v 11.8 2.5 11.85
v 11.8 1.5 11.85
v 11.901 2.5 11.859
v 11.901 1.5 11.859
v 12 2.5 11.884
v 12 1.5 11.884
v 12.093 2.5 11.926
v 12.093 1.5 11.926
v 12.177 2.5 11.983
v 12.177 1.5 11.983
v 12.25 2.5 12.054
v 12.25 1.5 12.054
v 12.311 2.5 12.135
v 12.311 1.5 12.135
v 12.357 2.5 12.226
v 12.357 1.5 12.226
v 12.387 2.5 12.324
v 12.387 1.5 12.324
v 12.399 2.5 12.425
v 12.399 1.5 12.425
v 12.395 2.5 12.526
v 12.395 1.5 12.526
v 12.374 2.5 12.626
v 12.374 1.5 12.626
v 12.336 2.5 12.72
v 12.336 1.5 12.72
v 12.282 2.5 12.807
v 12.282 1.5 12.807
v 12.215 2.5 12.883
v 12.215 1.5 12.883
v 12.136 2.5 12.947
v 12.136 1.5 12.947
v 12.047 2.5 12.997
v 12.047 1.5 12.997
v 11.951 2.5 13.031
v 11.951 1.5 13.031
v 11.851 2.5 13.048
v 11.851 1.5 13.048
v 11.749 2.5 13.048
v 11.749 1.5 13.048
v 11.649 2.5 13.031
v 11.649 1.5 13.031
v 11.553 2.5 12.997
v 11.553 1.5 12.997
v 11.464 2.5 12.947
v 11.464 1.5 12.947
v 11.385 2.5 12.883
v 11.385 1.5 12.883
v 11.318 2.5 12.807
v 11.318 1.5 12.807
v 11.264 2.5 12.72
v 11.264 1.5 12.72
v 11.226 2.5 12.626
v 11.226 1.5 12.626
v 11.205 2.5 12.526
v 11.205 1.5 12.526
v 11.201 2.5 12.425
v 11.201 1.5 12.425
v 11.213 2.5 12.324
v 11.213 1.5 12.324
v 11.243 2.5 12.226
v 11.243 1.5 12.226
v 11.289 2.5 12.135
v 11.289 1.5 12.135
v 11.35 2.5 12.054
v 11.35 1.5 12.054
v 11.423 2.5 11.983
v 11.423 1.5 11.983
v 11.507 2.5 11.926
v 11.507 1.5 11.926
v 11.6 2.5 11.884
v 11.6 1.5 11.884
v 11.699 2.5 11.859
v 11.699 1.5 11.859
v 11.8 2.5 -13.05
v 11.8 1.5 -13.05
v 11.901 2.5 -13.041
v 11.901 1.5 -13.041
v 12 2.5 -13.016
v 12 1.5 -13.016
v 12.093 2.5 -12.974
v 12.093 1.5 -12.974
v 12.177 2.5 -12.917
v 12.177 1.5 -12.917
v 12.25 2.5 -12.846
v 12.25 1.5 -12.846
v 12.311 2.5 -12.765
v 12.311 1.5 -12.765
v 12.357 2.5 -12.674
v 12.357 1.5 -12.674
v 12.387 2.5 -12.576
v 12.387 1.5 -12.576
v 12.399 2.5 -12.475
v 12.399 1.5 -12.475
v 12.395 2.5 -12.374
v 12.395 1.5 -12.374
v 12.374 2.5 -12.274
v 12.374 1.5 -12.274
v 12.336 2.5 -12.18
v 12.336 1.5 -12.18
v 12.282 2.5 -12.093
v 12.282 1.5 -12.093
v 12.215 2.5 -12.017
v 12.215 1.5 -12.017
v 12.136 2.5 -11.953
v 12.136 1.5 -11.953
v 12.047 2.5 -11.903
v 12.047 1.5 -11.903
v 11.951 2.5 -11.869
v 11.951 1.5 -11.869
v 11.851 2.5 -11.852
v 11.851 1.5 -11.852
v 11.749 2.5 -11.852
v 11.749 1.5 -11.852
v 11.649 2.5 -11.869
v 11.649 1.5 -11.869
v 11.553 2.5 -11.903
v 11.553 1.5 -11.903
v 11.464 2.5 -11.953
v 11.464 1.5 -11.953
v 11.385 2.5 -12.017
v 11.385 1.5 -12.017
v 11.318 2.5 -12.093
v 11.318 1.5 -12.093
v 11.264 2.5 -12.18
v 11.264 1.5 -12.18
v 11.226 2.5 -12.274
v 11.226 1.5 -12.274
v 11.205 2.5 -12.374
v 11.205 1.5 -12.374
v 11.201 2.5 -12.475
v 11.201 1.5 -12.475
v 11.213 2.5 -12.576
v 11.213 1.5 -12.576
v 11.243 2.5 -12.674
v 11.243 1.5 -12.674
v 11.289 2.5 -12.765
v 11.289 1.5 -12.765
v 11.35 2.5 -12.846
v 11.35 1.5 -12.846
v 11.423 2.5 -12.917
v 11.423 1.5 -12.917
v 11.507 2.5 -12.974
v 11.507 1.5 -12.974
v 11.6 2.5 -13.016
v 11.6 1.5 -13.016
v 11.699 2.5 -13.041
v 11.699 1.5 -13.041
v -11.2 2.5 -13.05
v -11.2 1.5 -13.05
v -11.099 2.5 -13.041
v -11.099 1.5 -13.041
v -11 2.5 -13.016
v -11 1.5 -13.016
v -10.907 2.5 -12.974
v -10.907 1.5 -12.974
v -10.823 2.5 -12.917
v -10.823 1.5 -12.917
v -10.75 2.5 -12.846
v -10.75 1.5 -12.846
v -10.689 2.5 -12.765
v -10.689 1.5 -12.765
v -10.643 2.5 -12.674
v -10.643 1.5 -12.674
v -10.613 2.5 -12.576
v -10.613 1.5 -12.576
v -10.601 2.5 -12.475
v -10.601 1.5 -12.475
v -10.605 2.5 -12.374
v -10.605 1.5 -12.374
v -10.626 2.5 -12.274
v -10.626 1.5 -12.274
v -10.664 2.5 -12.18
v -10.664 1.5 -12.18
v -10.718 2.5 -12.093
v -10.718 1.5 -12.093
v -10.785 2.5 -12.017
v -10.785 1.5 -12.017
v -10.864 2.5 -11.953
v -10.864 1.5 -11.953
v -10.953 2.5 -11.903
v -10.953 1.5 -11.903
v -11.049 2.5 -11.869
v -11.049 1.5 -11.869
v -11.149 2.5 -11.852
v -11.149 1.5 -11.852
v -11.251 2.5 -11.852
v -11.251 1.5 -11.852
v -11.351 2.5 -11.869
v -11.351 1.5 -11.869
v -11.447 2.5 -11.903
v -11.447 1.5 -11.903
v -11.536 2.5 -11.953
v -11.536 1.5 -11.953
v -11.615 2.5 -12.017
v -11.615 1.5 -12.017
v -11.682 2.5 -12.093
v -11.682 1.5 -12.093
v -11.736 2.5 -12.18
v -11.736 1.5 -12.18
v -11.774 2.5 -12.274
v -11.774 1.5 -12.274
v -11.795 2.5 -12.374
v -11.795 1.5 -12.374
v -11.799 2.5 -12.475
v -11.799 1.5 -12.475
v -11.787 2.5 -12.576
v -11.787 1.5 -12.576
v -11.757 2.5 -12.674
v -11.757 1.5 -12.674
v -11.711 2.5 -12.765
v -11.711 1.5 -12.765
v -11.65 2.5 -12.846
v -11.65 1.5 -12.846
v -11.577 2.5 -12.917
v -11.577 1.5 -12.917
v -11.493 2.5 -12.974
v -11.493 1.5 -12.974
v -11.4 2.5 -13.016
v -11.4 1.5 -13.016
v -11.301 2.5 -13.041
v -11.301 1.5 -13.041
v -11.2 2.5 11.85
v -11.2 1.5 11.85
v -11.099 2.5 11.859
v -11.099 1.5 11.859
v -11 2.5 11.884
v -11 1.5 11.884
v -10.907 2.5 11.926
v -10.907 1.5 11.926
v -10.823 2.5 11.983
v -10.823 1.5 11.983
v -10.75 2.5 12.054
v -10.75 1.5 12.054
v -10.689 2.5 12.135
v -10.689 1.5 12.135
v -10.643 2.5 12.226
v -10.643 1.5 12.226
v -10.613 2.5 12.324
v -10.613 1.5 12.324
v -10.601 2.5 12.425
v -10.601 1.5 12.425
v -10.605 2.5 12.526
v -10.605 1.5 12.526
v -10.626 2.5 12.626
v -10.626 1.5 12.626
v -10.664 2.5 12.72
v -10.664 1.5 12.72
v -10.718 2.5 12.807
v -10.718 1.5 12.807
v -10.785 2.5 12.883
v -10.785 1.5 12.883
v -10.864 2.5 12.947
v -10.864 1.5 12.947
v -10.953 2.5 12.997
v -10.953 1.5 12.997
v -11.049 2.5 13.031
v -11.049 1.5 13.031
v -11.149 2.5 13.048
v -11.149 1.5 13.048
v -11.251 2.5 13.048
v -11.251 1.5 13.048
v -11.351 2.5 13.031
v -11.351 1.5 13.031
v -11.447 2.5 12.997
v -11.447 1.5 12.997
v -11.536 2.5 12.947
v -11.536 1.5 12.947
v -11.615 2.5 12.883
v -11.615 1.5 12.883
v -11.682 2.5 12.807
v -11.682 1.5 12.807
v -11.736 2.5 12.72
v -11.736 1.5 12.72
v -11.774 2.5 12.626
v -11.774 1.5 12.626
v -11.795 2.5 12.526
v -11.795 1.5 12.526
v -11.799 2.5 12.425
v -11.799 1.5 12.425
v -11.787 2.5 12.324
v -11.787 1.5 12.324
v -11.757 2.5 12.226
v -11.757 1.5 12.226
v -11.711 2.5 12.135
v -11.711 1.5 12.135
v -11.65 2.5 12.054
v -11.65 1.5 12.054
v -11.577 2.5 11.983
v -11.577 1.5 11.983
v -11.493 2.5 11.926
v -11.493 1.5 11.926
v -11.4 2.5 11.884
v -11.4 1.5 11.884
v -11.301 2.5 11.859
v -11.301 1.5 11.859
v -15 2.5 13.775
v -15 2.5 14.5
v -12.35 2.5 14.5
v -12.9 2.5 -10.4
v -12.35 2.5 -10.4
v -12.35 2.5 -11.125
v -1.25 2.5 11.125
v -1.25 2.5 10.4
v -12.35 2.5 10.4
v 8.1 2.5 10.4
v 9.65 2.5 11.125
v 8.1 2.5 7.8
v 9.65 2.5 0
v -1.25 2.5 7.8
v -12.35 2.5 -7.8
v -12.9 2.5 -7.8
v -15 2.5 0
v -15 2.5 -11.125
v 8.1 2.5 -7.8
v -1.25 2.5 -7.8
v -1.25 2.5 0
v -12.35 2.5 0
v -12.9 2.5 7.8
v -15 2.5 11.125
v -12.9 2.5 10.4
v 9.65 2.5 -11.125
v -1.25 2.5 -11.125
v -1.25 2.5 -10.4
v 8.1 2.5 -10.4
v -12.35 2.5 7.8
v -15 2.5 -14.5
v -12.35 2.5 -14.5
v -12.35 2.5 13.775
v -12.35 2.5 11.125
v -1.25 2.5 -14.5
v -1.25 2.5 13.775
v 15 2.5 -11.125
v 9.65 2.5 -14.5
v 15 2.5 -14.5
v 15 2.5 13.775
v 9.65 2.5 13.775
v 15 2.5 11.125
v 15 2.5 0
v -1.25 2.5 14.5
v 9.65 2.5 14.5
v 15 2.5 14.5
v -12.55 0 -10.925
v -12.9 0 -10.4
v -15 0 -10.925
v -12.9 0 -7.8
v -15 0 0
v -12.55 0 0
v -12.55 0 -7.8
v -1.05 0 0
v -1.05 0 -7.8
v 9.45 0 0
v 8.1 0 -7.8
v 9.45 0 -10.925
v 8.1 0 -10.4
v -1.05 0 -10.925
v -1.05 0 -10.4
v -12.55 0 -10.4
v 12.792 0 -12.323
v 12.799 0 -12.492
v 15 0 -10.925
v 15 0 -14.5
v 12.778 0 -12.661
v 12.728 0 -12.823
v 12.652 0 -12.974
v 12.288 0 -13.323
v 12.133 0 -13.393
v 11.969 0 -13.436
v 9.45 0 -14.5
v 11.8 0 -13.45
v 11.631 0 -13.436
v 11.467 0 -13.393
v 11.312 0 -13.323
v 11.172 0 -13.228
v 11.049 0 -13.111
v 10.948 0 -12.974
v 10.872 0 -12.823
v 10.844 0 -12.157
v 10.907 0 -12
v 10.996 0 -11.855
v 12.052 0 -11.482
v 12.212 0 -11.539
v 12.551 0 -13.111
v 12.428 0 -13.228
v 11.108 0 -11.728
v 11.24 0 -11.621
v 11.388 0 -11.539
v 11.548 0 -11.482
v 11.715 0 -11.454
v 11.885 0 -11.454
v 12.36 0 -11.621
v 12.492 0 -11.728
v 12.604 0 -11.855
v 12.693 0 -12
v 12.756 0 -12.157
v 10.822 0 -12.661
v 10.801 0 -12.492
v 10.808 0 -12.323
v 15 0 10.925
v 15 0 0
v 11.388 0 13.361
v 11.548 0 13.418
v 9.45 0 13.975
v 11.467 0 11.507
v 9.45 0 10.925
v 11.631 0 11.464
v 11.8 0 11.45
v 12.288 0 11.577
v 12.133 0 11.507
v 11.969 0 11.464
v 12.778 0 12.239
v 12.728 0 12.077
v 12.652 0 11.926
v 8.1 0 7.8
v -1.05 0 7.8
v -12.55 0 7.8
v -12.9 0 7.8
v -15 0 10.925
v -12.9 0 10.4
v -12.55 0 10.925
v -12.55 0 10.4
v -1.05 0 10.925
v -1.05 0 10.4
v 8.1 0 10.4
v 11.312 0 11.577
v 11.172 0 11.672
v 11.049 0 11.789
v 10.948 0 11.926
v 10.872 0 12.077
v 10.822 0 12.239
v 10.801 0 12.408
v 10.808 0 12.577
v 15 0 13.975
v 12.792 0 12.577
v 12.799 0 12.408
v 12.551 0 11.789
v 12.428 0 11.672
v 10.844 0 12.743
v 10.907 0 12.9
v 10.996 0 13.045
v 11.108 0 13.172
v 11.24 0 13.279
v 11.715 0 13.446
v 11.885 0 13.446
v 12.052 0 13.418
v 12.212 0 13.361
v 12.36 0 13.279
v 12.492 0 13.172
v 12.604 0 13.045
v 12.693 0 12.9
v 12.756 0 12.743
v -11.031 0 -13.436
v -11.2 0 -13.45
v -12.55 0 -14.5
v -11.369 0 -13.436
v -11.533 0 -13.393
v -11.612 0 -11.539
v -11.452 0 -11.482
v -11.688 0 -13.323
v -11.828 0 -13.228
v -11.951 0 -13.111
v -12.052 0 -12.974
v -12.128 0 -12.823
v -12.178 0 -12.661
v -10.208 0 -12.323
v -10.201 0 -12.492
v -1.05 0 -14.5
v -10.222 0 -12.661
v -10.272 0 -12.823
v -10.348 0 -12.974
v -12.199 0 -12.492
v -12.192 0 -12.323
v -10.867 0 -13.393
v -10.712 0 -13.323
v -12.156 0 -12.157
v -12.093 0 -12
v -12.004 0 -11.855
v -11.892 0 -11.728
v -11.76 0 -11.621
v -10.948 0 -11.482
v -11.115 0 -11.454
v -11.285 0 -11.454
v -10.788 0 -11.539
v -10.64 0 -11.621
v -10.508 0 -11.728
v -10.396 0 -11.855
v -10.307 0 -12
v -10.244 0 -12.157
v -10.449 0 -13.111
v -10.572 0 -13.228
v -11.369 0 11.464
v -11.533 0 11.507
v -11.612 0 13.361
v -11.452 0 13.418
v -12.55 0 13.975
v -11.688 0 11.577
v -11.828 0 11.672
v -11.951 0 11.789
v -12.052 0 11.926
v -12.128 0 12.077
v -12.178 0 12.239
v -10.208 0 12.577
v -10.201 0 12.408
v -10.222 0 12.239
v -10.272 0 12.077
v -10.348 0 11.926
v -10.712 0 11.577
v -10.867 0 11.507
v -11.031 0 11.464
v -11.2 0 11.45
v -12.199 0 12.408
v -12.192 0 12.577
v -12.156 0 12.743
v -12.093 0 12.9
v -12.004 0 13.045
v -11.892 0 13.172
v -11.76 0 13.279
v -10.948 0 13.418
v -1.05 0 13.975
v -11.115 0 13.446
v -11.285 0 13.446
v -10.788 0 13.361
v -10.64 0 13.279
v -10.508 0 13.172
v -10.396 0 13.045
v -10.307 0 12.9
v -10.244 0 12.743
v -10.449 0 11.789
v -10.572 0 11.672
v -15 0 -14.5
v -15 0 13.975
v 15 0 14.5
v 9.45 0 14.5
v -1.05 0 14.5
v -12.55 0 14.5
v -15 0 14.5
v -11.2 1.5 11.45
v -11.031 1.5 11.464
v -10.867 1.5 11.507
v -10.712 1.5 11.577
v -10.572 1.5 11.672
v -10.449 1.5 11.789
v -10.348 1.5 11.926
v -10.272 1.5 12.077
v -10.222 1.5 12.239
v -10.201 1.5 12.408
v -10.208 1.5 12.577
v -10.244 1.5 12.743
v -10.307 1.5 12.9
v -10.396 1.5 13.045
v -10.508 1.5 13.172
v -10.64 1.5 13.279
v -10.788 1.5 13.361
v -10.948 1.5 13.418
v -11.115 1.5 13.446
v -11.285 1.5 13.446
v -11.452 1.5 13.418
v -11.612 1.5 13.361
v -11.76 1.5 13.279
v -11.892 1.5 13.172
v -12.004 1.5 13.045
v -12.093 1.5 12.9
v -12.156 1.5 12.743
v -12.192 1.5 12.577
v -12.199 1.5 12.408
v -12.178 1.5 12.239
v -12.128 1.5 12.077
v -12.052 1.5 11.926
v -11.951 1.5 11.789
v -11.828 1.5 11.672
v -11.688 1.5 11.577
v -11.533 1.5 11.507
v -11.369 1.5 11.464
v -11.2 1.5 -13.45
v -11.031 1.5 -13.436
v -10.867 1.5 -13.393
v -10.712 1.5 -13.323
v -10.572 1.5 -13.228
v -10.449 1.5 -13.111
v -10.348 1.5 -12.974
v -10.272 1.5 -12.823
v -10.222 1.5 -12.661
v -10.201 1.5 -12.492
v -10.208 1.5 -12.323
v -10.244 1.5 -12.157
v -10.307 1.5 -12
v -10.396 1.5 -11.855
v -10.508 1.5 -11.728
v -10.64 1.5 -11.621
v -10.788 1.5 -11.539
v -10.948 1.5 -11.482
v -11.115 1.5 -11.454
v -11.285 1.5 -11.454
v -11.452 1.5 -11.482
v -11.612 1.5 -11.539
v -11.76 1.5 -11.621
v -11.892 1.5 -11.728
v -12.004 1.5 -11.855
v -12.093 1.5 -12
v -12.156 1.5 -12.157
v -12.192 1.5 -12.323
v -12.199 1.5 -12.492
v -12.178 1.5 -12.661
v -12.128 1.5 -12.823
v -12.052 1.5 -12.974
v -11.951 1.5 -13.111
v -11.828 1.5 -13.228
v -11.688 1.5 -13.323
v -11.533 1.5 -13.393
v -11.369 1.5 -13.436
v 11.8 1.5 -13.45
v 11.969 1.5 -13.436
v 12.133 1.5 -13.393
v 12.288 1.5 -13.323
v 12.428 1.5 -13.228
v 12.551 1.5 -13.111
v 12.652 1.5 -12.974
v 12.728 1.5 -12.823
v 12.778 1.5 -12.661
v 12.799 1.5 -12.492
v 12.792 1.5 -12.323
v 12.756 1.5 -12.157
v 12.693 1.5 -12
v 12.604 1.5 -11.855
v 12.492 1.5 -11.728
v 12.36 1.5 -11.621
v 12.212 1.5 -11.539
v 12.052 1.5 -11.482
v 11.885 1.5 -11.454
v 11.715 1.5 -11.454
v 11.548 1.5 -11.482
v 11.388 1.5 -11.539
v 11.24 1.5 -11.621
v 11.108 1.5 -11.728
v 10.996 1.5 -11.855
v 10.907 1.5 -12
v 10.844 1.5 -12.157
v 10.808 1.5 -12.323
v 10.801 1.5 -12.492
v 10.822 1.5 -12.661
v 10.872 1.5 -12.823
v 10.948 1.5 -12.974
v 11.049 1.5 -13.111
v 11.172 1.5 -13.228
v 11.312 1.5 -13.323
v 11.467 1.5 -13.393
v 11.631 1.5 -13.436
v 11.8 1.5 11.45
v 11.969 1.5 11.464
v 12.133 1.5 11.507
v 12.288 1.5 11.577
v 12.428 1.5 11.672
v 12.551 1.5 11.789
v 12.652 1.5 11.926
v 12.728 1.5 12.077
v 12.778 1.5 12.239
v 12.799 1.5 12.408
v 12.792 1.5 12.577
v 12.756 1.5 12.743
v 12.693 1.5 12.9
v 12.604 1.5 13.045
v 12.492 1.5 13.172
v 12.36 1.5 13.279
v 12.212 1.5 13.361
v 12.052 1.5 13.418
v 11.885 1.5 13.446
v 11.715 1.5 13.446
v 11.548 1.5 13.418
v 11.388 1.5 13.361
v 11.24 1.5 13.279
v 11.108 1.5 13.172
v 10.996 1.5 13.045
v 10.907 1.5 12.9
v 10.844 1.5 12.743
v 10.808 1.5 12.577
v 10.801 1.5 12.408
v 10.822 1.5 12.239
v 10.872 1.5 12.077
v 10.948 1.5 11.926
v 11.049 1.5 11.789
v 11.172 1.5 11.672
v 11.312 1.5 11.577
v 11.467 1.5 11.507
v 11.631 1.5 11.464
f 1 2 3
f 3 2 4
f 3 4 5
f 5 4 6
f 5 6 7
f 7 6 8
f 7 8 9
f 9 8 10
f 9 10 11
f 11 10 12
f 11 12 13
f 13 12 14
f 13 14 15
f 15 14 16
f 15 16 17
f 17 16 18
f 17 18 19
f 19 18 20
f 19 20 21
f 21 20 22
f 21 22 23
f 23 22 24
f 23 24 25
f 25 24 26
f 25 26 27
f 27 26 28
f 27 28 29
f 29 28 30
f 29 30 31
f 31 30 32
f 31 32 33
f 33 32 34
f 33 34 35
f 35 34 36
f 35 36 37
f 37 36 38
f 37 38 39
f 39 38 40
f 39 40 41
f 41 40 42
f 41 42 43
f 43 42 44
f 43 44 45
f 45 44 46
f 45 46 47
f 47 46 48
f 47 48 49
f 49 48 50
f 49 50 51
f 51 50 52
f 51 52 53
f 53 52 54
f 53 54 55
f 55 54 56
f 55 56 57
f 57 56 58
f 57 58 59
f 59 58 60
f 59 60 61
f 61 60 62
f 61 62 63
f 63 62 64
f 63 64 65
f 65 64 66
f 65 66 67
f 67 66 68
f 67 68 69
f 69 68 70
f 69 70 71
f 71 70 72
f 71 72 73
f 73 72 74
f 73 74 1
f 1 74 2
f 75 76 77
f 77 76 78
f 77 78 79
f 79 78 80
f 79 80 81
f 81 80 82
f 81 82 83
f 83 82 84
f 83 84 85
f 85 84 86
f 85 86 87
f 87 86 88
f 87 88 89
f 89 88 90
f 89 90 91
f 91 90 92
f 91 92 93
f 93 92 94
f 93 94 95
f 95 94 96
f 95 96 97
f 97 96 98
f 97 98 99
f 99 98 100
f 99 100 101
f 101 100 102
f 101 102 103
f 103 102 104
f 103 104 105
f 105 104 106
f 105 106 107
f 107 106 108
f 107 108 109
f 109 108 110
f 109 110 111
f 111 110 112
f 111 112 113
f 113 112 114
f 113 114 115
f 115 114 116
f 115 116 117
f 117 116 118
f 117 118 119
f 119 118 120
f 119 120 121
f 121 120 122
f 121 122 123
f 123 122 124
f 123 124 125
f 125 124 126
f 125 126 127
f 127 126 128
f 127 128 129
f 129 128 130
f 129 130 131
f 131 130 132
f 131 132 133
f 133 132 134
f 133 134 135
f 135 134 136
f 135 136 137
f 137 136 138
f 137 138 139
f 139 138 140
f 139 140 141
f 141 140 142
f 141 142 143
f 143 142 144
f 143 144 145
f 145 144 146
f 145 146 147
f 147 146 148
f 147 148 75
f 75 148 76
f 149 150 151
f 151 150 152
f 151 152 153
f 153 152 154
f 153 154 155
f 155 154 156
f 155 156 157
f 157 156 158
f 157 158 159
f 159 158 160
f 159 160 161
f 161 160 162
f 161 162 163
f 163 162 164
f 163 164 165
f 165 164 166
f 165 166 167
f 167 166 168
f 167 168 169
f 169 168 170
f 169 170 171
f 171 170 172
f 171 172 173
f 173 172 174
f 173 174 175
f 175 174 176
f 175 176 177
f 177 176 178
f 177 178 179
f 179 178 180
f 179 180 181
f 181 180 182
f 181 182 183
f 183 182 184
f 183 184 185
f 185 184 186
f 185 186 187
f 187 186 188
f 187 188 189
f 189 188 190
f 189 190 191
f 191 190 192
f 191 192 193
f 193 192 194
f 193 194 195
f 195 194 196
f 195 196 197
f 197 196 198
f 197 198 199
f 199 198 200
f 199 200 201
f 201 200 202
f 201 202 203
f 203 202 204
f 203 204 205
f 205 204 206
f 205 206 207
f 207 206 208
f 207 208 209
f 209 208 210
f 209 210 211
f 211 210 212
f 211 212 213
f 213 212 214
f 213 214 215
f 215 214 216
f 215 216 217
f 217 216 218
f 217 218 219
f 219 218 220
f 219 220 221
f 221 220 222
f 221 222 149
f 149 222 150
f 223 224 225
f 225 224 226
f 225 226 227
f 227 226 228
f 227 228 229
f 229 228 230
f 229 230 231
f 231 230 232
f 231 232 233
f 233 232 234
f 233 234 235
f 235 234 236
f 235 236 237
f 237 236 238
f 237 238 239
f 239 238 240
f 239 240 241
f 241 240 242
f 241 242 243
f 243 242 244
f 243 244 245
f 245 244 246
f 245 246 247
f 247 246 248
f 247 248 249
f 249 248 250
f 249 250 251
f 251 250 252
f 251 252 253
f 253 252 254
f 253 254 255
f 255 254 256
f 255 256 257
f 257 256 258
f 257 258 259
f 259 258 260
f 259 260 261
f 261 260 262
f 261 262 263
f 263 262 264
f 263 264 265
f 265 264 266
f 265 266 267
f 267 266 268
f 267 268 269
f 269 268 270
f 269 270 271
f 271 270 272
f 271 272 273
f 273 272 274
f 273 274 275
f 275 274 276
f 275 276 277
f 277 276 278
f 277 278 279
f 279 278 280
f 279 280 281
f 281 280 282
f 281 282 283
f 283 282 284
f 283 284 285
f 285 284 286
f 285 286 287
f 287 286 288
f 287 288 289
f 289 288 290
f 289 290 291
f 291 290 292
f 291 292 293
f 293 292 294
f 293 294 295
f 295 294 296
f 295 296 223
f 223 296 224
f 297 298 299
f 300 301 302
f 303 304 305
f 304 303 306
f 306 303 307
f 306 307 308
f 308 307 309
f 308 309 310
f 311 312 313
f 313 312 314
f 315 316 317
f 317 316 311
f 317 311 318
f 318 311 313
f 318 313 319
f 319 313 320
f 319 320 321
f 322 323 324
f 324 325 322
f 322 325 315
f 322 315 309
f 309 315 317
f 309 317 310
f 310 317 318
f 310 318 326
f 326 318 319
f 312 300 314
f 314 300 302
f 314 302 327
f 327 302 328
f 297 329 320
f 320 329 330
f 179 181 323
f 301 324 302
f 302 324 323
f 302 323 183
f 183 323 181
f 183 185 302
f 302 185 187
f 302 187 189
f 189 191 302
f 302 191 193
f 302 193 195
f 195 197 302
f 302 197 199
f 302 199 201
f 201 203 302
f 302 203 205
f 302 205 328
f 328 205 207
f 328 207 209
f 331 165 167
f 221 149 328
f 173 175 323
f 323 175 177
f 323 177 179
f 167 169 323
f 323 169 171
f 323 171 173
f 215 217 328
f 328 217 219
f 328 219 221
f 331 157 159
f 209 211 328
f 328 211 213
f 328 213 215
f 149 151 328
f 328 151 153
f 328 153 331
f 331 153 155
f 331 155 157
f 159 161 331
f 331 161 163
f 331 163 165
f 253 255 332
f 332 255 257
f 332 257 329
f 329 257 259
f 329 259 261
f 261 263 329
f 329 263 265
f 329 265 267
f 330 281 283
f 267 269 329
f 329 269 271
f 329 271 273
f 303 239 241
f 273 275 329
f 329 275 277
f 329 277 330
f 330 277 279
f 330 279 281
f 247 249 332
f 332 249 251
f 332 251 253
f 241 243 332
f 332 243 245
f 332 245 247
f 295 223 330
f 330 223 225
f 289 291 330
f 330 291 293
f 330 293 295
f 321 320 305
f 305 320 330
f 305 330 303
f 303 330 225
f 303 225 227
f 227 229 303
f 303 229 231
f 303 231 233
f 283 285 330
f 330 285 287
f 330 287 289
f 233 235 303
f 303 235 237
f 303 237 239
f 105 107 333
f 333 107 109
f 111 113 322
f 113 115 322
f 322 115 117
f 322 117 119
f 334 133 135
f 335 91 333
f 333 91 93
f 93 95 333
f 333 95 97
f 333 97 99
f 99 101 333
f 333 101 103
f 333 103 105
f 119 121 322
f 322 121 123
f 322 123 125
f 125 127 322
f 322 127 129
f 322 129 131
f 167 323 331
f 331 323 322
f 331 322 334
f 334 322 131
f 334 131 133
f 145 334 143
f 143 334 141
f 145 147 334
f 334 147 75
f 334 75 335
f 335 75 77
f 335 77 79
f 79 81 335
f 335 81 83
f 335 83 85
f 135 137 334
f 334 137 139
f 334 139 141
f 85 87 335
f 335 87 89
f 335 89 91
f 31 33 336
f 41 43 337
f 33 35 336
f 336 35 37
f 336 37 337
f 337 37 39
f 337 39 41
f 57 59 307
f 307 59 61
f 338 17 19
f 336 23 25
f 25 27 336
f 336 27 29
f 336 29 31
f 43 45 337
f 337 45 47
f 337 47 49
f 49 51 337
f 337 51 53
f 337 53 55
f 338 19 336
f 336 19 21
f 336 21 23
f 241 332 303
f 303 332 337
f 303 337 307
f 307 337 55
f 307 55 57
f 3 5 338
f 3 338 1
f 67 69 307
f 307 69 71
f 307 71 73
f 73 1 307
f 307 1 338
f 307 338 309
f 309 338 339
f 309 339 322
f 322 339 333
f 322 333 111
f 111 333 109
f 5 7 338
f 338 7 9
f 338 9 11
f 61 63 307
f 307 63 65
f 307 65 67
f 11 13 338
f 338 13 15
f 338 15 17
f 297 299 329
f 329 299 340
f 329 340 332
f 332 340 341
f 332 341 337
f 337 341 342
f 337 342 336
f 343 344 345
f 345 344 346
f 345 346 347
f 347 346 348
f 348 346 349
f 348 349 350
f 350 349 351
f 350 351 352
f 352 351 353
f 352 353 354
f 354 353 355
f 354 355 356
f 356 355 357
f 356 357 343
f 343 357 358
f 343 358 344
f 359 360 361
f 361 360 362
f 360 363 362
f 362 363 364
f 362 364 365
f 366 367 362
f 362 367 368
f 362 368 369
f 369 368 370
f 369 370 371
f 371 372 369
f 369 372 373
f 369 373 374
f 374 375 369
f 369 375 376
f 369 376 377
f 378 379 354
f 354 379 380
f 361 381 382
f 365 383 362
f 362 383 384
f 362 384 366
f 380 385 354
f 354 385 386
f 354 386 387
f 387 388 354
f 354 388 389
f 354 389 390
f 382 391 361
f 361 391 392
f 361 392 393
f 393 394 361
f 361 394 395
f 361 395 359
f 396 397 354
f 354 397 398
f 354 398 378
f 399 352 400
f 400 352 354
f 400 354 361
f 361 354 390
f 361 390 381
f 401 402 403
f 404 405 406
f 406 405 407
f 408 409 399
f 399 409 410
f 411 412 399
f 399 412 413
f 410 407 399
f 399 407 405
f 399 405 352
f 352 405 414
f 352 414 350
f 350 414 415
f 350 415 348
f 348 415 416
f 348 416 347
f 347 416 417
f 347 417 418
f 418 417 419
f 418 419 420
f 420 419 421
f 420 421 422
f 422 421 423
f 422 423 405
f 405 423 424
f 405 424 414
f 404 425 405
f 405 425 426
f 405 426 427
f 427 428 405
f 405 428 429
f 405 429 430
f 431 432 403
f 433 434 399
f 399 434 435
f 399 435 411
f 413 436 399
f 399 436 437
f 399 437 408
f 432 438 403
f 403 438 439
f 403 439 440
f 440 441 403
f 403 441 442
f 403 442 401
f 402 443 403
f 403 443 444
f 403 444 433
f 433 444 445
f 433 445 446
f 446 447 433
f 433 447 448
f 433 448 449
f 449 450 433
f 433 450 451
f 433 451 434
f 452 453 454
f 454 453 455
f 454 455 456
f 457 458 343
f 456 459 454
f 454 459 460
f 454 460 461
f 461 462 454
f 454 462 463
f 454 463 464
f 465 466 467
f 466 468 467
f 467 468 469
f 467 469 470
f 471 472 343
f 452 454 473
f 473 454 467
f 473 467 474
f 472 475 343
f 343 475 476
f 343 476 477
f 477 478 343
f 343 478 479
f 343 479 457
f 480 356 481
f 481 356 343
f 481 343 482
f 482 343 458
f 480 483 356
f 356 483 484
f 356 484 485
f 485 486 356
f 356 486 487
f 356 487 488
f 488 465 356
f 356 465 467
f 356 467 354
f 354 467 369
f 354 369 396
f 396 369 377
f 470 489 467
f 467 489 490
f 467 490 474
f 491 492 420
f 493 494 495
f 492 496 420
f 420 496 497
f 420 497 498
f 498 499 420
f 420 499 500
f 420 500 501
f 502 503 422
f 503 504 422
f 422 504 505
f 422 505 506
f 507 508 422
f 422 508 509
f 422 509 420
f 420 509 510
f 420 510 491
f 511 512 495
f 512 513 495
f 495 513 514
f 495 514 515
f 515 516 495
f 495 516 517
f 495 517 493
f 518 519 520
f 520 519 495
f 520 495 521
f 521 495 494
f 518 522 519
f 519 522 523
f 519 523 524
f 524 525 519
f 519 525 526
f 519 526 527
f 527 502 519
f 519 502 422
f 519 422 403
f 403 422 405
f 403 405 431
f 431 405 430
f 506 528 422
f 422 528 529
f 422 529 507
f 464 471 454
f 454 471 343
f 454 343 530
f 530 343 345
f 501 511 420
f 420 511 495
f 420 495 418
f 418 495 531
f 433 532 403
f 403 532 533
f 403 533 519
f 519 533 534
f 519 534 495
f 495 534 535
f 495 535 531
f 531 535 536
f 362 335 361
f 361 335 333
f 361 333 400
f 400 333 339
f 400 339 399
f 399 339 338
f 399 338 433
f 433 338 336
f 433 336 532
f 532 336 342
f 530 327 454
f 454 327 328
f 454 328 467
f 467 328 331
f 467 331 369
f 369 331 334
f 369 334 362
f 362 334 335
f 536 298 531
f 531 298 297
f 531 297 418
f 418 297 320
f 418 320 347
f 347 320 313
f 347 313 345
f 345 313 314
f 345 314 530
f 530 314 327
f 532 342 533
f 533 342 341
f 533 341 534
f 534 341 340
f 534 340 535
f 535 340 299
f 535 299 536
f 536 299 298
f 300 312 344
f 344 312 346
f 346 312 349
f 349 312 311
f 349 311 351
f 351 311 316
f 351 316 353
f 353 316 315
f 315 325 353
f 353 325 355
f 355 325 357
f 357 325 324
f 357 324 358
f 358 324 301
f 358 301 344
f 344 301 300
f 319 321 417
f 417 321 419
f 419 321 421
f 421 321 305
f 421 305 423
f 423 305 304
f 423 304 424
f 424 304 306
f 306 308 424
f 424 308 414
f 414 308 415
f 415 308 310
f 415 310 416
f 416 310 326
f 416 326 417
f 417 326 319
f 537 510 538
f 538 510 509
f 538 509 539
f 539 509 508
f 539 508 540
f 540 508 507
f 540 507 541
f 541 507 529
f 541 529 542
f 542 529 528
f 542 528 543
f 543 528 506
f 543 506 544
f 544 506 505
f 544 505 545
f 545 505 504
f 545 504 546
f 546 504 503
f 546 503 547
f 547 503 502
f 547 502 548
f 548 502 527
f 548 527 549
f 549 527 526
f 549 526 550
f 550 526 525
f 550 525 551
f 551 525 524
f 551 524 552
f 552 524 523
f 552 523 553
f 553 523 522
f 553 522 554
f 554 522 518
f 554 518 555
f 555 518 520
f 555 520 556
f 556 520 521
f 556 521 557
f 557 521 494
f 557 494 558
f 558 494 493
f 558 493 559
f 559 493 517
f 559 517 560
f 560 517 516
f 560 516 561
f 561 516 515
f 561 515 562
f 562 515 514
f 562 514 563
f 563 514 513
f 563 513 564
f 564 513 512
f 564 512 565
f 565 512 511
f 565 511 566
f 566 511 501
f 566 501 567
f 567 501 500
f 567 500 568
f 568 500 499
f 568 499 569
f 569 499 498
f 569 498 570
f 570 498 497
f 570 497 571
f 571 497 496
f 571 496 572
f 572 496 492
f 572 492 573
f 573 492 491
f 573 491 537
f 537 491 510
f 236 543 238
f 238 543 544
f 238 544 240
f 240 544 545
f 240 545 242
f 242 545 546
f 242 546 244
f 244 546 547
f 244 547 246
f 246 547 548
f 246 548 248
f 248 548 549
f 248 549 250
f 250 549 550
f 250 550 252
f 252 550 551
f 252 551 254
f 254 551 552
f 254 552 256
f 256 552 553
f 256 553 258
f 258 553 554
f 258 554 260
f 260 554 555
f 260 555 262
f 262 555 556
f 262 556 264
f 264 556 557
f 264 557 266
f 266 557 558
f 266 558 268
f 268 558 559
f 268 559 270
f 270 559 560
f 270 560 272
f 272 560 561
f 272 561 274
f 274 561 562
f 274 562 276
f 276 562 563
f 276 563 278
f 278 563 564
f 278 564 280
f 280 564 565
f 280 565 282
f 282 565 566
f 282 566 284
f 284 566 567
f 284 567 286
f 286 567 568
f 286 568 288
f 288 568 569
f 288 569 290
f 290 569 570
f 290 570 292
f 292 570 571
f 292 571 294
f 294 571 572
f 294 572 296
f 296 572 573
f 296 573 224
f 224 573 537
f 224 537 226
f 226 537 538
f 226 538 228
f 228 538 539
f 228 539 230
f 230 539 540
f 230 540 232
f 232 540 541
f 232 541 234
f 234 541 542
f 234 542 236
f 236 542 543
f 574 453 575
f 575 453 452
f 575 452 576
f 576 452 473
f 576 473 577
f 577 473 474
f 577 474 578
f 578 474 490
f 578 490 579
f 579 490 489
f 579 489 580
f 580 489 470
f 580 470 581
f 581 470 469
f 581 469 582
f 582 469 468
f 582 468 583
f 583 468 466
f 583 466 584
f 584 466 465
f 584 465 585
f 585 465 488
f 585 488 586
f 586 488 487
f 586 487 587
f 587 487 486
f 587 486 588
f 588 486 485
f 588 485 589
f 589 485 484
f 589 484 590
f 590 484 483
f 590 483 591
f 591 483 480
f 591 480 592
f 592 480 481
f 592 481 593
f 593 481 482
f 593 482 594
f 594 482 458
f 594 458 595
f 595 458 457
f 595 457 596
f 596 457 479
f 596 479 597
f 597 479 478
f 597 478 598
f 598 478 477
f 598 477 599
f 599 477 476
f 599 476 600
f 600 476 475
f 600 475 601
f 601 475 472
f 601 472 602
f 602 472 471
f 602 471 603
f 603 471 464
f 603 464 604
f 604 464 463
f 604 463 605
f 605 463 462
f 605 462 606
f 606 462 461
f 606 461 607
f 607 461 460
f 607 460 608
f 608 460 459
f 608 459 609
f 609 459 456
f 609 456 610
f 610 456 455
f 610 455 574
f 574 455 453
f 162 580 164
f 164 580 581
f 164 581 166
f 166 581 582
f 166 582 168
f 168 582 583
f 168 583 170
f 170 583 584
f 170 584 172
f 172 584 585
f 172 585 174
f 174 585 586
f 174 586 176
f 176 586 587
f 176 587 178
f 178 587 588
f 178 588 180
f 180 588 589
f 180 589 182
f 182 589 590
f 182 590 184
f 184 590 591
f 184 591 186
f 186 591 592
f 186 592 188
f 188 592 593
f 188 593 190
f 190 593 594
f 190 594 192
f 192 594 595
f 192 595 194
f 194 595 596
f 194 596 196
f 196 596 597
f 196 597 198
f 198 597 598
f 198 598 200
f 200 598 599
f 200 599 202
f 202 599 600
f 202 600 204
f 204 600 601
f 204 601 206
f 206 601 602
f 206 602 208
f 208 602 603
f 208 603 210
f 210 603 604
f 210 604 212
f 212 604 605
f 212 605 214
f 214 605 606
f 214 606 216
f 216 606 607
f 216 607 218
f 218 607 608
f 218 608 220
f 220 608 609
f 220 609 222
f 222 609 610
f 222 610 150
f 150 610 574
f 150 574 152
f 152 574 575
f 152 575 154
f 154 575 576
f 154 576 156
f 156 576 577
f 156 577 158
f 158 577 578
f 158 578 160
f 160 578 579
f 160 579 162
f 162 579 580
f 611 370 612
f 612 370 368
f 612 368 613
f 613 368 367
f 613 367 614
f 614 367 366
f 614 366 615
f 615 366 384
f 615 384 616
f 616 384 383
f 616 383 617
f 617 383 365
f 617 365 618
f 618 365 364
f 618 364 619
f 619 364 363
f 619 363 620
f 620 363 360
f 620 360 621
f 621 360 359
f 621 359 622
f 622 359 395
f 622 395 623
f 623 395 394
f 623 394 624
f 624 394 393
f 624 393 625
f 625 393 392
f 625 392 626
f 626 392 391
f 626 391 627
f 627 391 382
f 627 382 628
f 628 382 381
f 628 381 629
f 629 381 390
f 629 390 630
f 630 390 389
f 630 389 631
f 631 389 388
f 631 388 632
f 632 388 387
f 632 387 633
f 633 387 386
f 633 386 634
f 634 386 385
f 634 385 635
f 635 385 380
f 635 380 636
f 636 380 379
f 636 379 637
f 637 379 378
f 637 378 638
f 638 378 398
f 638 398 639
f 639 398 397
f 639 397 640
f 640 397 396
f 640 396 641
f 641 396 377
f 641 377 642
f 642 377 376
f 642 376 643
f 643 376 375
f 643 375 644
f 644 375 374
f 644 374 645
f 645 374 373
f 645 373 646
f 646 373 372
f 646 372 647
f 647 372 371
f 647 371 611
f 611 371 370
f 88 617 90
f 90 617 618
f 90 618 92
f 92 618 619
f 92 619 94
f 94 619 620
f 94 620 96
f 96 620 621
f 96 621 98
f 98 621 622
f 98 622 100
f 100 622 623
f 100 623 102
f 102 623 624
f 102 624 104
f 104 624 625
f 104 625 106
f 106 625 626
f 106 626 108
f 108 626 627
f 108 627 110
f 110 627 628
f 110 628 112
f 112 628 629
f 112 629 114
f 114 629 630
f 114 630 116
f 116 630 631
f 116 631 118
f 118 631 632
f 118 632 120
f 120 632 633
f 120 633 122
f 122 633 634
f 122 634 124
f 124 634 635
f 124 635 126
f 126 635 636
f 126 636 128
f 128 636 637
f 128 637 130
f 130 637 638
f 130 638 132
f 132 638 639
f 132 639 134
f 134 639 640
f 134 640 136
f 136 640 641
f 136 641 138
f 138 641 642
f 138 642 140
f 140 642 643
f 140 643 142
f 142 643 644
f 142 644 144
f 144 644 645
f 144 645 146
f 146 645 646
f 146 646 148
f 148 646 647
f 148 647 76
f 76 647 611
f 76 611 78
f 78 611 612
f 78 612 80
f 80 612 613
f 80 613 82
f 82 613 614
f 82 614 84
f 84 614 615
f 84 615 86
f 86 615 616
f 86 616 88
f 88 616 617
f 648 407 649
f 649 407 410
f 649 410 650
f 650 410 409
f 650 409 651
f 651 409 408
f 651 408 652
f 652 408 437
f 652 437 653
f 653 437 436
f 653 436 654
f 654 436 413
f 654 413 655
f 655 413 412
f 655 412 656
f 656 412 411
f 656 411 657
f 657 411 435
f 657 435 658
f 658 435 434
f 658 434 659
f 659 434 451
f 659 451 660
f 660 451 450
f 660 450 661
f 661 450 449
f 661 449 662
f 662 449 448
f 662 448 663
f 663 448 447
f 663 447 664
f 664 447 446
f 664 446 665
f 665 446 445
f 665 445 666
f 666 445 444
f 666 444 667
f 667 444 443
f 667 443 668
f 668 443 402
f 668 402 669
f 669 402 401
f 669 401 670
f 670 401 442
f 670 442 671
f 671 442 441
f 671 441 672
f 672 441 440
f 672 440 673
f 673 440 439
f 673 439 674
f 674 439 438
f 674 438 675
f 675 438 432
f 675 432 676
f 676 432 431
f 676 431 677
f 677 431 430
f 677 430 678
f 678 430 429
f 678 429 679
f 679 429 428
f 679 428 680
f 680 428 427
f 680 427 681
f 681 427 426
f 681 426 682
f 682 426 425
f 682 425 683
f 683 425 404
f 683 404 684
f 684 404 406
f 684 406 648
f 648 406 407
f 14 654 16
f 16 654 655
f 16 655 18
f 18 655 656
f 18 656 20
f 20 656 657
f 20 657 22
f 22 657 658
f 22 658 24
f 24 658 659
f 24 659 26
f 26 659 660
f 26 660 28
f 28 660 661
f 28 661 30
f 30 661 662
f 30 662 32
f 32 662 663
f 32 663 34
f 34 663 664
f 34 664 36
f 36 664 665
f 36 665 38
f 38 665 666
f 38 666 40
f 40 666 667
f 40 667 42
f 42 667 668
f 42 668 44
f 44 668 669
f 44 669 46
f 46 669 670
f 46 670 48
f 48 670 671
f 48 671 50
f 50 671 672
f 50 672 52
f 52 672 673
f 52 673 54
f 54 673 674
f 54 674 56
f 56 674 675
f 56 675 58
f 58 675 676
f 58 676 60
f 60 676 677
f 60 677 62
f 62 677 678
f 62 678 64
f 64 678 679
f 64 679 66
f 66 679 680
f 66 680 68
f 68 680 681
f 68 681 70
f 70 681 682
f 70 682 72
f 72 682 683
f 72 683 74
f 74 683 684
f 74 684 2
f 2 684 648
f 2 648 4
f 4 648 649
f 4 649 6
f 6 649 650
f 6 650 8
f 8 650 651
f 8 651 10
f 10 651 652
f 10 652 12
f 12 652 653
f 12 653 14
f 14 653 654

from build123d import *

# Parameters (mm, degrees)
SKETCH_1_W          = 30
SKETCH_1_H          = 29
SKETCH_1_W_2        = 21
SKETCH_1_H_2        = 2.6
EXTRUDE_1_DEPTH     = 2.5
SKETCH_2_R          = 0.6
CUT_EXTRUDE_1_DEPTH = 22.011901389
SKETCH_2_3_R        = 1
SKETCH_2_3_R_2      = 0.6
CUT_EXTRUDE_2_DEPTH = 1.5


with BuildPart() as part:
    # 草图1 → 凸台-拉伸1 (new body)
    with BuildSketch(Plane(origin=(0, 0, 0), x_dir=(1, 0, 0), z_dir=(0, 1, 0))):
        Rectangle(SKETCH_1_W, SKETCH_1_H)
        with Locations((-2.4, 9.1)):
            Rectangle(SKETCH_1_W_2, SKETCH_1_H_2, mode=Mode.SUBTRACT)
        with Locations((-2.4, -9.1)):
            Rectangle(SKETCH_1_W_2, SKETCH_1_H_2, mode=Mode.SUBTRACT)
    extrude(amount=EXTRUDE_1_DEPTH)

    # 草图2 → 切除-拉伸1 (cut, through all)
    with BuildSketch(Plane.XZ):
        with Locations((-11.2, -12.45)):
            Circle(SKETCH_2_R)
        with Locations((-11.2, 12.45)):
            Circle(SKETCH_2_R)
        with Locations((11.8, 12.45)):
            Circle(SKETCH_2_R)
        with Locations((11.8, -12.45)):
            Circle(SKETCH_2_R)
    extrude(amount=-CUT_EXTRUDE_1_DEPTH, mode=Mode.SUBTRACT)

    # 草图2<3> → 切除-拉伸2 (cut)
    # profile 1 of 4: a face of its own
    with BuildSketch(Plane.XZ):
        with Locations((-11.2, -12.45)):
            Circle(SKETCH_2_3_R)
        with Locations((-11.2, -12.45)):
            Circle(SKETCH_2_3_R_2, mode=Mode.SUBTRACT)
    # profile 2 of 4: a face of its own
    with BuildSketch(Plane.XZ):
        with Locations((-11.2, 12.45)):
            Circle(SKETCH_2_3_R)
        with Locations((-11.2, 12.45)):
            Circle(SKETCH_2_3_R_2, mode=Mode.SUBTRACT)
    # profile 3 of 4: a face of its own
    with BuildSketch(Plane.XZ):
        with Locations((11.8, 12.45)):
            Circle(SKETCH_2_3_R)
        with Locations((11.8, 12.45)):
            Circle(SKETCH_2_3_R_2, mode=Mode.SUBTRACT)
    # profile 4 of 4: a face of its own
    with BuildSketch(Plane.XZ):
        with Locations((11.8, -12.45)):
            Circle(SKETCH_2_3_R)
        with Locations((11.8, -12.45)):
            Circle(SKETCH_2_3_R_2, mode=Mode.SUBTRACT)
    extrude(amount=-CUT_EXTRUDE_2_DEPTH, mode=Mode.SUBTRACT)


solid = part.part
